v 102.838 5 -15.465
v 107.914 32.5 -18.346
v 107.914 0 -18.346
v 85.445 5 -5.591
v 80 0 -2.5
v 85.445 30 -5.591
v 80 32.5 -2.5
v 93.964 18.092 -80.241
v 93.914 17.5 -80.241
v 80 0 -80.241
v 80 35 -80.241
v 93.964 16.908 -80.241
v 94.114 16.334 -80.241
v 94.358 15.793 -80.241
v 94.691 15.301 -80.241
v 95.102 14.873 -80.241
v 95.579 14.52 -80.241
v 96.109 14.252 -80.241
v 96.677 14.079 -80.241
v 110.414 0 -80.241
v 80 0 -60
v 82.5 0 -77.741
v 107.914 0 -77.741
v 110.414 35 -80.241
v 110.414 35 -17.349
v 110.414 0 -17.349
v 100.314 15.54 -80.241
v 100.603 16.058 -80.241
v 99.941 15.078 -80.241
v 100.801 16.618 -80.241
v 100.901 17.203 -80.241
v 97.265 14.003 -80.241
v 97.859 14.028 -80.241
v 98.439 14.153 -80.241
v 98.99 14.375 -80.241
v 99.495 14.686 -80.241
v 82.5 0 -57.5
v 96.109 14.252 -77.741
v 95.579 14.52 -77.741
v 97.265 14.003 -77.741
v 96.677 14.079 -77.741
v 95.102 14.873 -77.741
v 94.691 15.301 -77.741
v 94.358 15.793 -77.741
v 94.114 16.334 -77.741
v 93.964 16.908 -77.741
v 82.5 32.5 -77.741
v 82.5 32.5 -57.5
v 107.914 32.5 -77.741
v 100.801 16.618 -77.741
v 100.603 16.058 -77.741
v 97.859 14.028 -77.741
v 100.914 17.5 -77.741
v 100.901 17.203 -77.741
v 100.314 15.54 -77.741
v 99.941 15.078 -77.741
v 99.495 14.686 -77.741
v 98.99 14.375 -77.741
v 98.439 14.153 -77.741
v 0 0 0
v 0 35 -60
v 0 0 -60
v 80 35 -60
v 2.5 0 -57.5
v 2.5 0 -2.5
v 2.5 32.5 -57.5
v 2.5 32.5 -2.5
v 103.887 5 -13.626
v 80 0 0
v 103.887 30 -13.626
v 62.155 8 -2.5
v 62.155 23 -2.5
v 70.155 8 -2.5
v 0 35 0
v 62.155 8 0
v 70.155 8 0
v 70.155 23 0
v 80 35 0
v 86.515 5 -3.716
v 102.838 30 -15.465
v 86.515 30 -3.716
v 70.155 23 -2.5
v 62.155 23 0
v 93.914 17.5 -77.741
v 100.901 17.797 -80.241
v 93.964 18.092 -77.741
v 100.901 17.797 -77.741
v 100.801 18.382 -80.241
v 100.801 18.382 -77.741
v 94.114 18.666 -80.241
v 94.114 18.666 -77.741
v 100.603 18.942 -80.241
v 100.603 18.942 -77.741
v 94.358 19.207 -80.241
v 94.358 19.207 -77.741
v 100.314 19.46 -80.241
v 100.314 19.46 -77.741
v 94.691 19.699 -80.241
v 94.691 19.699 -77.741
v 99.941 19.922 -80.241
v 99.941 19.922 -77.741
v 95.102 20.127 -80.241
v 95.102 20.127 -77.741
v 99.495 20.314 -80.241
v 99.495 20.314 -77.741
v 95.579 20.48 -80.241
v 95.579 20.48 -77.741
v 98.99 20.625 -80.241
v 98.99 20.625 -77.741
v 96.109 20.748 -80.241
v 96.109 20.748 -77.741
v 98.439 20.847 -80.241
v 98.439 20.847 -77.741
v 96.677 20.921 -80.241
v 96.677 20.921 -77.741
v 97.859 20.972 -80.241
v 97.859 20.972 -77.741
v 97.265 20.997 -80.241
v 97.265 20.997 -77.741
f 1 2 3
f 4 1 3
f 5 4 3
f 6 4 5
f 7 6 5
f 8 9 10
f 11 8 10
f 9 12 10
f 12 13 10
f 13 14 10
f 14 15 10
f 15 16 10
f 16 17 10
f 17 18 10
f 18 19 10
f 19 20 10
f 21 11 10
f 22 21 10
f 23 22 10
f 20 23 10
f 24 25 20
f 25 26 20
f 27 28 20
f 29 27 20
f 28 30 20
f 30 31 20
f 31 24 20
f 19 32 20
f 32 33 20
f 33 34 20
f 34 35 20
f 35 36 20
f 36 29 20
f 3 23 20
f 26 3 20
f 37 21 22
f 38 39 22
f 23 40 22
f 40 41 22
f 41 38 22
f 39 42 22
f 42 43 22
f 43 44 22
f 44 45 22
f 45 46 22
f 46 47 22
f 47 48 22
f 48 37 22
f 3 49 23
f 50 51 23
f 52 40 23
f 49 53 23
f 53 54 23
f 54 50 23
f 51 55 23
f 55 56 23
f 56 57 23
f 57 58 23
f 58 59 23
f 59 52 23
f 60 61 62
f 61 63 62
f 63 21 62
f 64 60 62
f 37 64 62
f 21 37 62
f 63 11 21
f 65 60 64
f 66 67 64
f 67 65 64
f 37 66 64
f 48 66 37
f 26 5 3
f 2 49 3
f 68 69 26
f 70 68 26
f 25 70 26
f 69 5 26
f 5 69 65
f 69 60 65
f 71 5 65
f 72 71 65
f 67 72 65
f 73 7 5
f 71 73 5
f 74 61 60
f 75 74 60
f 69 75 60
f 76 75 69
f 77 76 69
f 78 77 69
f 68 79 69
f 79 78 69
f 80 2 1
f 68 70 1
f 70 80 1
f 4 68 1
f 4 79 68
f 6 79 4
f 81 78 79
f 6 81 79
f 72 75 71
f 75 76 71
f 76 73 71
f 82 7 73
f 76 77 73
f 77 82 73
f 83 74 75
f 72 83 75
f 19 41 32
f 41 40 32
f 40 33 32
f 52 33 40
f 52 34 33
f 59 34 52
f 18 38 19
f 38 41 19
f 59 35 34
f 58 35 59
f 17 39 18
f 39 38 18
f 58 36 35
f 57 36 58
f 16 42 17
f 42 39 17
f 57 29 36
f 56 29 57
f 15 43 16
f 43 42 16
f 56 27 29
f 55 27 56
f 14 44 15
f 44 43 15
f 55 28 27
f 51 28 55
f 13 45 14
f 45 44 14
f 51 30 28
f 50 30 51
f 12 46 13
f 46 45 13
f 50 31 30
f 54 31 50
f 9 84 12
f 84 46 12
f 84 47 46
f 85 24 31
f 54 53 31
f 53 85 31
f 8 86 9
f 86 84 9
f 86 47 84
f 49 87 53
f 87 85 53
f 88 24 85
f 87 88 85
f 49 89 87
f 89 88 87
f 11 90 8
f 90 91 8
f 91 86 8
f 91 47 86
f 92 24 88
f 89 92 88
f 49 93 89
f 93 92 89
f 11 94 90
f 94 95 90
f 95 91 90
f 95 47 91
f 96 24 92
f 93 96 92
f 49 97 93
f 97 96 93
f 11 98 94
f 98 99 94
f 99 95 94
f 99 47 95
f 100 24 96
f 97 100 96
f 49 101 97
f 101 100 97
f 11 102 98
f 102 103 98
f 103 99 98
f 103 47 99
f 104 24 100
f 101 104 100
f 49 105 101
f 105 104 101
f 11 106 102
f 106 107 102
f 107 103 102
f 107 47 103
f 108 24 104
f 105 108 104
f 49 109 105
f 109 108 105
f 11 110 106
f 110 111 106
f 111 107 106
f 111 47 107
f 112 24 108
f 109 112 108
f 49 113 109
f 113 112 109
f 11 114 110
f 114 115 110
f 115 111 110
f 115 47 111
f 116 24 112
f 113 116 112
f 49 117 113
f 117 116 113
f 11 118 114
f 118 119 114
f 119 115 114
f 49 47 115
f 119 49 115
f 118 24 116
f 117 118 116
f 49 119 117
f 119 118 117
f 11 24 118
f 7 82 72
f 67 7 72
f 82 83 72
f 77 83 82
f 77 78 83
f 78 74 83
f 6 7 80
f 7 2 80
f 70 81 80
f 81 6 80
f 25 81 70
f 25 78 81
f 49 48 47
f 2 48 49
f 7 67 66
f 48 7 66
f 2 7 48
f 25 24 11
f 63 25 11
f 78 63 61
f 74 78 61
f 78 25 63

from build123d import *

# Parameters (mm, degrees)
Y_KSEKLIK_EKSTR_ZYON1_DEPTH = 35
KES_EKSTR_ZYON2_DEPTH       = 32.5
IZIM6_W                     = 20
IZIM6_H                     = 25
KES_EKSTR_ZYON3_DEPTH       = 12.5
IZIM7_R                     = 3.5
KES_EKSTR_ZYON4_DEPTH       = 12.5
IZIM8_W                     = 8
IZIM8_H                     = 15
KES_EKSTR_ZYON5_DEPTH       = 12.5


with BuildPart() as part:
    # Çizim1 → Yükseklik-Ekstrüzyon1 (new body)
    with BuildSketch(Plane(origin=(0, 0, 0), x_dir=(1, 0, 0), z_dir=(0, 1, 0))):
        Polygon((80, 0), (110.4139872, 17.348793327), (110.4139872, 60), (110.4139872, 80.241023143), (80, 80.241023143), (80, 60), (0, 60), (0, 0), align=None)
    extrude(amount=Y_KSEKLIK_EKSTR_ZYON1_DEPTH)

    # Çizim5 → Kes-Ekstrüzyon2 (cut)
    with BuildSketch(Plane(origin=(0, 0, 0), x_dir=(-1, 0, 0), z_dir=(0, -1, 0))):
        Polygon((-2.5, 2.5), (-80, 2.5), (-107.9139872, 18.34615917), (-107.9139872, 77.741023143), (-82.5, 77.741023143), (-82.5, 57.5), (-80.013539943, 57.5), (-2.5, 57.5), align=None)
    extrude(amount=-KES_EKSTR_ZYON2_DEPTH, mode=Mode.SUBTRACT)

    # Çizim6 → Kes-Ekstrüzyon3 (cut)
    with BuildSketch(Plane(origin=(19.639985559, 0, 34.430652215), x_dir=(0.8686196984341679, 0, -0.4954793835187649), z_dir=(0.4954793835187649, 0, 0.8686196984341679))):
        with Locations((86.989575875, 17.5)):
            Rectangle(IZIM6_W, IZIM6_H)
    extrude(amount=-KES_EKSTR_ZYON3_DEPTH, mode=Mode.SUBTRACT)

    # Çizim7 → Kes-Ekstrüzyon4 (cut)
    with BuildSketch(Plane(origin=(0, 0, -80.241023143), x_dir=(-1, 0, 0), z_dir=(0, 0, -1))):
        with Locations((-97.4139872, 17.5)):
            Circle(IZIM7_R)
    extrude(amount=-KES_EKSTR_ZYON4_DEPTH, mode=Mode.SUBTRACT)

    # Çizim8 → Kes-Ekstrüzyon5 (cut)
    with BuildSketch(Plane.XY):
        with Locations((66.154872496, 15.5)):
            Rectangle(IZIM8_W, IZIM8_H)
    extrude(amount=-KES_EKSTR_ZYON5_DEPTH, mode=Mode.SUBTRACT)


solid = part.part
